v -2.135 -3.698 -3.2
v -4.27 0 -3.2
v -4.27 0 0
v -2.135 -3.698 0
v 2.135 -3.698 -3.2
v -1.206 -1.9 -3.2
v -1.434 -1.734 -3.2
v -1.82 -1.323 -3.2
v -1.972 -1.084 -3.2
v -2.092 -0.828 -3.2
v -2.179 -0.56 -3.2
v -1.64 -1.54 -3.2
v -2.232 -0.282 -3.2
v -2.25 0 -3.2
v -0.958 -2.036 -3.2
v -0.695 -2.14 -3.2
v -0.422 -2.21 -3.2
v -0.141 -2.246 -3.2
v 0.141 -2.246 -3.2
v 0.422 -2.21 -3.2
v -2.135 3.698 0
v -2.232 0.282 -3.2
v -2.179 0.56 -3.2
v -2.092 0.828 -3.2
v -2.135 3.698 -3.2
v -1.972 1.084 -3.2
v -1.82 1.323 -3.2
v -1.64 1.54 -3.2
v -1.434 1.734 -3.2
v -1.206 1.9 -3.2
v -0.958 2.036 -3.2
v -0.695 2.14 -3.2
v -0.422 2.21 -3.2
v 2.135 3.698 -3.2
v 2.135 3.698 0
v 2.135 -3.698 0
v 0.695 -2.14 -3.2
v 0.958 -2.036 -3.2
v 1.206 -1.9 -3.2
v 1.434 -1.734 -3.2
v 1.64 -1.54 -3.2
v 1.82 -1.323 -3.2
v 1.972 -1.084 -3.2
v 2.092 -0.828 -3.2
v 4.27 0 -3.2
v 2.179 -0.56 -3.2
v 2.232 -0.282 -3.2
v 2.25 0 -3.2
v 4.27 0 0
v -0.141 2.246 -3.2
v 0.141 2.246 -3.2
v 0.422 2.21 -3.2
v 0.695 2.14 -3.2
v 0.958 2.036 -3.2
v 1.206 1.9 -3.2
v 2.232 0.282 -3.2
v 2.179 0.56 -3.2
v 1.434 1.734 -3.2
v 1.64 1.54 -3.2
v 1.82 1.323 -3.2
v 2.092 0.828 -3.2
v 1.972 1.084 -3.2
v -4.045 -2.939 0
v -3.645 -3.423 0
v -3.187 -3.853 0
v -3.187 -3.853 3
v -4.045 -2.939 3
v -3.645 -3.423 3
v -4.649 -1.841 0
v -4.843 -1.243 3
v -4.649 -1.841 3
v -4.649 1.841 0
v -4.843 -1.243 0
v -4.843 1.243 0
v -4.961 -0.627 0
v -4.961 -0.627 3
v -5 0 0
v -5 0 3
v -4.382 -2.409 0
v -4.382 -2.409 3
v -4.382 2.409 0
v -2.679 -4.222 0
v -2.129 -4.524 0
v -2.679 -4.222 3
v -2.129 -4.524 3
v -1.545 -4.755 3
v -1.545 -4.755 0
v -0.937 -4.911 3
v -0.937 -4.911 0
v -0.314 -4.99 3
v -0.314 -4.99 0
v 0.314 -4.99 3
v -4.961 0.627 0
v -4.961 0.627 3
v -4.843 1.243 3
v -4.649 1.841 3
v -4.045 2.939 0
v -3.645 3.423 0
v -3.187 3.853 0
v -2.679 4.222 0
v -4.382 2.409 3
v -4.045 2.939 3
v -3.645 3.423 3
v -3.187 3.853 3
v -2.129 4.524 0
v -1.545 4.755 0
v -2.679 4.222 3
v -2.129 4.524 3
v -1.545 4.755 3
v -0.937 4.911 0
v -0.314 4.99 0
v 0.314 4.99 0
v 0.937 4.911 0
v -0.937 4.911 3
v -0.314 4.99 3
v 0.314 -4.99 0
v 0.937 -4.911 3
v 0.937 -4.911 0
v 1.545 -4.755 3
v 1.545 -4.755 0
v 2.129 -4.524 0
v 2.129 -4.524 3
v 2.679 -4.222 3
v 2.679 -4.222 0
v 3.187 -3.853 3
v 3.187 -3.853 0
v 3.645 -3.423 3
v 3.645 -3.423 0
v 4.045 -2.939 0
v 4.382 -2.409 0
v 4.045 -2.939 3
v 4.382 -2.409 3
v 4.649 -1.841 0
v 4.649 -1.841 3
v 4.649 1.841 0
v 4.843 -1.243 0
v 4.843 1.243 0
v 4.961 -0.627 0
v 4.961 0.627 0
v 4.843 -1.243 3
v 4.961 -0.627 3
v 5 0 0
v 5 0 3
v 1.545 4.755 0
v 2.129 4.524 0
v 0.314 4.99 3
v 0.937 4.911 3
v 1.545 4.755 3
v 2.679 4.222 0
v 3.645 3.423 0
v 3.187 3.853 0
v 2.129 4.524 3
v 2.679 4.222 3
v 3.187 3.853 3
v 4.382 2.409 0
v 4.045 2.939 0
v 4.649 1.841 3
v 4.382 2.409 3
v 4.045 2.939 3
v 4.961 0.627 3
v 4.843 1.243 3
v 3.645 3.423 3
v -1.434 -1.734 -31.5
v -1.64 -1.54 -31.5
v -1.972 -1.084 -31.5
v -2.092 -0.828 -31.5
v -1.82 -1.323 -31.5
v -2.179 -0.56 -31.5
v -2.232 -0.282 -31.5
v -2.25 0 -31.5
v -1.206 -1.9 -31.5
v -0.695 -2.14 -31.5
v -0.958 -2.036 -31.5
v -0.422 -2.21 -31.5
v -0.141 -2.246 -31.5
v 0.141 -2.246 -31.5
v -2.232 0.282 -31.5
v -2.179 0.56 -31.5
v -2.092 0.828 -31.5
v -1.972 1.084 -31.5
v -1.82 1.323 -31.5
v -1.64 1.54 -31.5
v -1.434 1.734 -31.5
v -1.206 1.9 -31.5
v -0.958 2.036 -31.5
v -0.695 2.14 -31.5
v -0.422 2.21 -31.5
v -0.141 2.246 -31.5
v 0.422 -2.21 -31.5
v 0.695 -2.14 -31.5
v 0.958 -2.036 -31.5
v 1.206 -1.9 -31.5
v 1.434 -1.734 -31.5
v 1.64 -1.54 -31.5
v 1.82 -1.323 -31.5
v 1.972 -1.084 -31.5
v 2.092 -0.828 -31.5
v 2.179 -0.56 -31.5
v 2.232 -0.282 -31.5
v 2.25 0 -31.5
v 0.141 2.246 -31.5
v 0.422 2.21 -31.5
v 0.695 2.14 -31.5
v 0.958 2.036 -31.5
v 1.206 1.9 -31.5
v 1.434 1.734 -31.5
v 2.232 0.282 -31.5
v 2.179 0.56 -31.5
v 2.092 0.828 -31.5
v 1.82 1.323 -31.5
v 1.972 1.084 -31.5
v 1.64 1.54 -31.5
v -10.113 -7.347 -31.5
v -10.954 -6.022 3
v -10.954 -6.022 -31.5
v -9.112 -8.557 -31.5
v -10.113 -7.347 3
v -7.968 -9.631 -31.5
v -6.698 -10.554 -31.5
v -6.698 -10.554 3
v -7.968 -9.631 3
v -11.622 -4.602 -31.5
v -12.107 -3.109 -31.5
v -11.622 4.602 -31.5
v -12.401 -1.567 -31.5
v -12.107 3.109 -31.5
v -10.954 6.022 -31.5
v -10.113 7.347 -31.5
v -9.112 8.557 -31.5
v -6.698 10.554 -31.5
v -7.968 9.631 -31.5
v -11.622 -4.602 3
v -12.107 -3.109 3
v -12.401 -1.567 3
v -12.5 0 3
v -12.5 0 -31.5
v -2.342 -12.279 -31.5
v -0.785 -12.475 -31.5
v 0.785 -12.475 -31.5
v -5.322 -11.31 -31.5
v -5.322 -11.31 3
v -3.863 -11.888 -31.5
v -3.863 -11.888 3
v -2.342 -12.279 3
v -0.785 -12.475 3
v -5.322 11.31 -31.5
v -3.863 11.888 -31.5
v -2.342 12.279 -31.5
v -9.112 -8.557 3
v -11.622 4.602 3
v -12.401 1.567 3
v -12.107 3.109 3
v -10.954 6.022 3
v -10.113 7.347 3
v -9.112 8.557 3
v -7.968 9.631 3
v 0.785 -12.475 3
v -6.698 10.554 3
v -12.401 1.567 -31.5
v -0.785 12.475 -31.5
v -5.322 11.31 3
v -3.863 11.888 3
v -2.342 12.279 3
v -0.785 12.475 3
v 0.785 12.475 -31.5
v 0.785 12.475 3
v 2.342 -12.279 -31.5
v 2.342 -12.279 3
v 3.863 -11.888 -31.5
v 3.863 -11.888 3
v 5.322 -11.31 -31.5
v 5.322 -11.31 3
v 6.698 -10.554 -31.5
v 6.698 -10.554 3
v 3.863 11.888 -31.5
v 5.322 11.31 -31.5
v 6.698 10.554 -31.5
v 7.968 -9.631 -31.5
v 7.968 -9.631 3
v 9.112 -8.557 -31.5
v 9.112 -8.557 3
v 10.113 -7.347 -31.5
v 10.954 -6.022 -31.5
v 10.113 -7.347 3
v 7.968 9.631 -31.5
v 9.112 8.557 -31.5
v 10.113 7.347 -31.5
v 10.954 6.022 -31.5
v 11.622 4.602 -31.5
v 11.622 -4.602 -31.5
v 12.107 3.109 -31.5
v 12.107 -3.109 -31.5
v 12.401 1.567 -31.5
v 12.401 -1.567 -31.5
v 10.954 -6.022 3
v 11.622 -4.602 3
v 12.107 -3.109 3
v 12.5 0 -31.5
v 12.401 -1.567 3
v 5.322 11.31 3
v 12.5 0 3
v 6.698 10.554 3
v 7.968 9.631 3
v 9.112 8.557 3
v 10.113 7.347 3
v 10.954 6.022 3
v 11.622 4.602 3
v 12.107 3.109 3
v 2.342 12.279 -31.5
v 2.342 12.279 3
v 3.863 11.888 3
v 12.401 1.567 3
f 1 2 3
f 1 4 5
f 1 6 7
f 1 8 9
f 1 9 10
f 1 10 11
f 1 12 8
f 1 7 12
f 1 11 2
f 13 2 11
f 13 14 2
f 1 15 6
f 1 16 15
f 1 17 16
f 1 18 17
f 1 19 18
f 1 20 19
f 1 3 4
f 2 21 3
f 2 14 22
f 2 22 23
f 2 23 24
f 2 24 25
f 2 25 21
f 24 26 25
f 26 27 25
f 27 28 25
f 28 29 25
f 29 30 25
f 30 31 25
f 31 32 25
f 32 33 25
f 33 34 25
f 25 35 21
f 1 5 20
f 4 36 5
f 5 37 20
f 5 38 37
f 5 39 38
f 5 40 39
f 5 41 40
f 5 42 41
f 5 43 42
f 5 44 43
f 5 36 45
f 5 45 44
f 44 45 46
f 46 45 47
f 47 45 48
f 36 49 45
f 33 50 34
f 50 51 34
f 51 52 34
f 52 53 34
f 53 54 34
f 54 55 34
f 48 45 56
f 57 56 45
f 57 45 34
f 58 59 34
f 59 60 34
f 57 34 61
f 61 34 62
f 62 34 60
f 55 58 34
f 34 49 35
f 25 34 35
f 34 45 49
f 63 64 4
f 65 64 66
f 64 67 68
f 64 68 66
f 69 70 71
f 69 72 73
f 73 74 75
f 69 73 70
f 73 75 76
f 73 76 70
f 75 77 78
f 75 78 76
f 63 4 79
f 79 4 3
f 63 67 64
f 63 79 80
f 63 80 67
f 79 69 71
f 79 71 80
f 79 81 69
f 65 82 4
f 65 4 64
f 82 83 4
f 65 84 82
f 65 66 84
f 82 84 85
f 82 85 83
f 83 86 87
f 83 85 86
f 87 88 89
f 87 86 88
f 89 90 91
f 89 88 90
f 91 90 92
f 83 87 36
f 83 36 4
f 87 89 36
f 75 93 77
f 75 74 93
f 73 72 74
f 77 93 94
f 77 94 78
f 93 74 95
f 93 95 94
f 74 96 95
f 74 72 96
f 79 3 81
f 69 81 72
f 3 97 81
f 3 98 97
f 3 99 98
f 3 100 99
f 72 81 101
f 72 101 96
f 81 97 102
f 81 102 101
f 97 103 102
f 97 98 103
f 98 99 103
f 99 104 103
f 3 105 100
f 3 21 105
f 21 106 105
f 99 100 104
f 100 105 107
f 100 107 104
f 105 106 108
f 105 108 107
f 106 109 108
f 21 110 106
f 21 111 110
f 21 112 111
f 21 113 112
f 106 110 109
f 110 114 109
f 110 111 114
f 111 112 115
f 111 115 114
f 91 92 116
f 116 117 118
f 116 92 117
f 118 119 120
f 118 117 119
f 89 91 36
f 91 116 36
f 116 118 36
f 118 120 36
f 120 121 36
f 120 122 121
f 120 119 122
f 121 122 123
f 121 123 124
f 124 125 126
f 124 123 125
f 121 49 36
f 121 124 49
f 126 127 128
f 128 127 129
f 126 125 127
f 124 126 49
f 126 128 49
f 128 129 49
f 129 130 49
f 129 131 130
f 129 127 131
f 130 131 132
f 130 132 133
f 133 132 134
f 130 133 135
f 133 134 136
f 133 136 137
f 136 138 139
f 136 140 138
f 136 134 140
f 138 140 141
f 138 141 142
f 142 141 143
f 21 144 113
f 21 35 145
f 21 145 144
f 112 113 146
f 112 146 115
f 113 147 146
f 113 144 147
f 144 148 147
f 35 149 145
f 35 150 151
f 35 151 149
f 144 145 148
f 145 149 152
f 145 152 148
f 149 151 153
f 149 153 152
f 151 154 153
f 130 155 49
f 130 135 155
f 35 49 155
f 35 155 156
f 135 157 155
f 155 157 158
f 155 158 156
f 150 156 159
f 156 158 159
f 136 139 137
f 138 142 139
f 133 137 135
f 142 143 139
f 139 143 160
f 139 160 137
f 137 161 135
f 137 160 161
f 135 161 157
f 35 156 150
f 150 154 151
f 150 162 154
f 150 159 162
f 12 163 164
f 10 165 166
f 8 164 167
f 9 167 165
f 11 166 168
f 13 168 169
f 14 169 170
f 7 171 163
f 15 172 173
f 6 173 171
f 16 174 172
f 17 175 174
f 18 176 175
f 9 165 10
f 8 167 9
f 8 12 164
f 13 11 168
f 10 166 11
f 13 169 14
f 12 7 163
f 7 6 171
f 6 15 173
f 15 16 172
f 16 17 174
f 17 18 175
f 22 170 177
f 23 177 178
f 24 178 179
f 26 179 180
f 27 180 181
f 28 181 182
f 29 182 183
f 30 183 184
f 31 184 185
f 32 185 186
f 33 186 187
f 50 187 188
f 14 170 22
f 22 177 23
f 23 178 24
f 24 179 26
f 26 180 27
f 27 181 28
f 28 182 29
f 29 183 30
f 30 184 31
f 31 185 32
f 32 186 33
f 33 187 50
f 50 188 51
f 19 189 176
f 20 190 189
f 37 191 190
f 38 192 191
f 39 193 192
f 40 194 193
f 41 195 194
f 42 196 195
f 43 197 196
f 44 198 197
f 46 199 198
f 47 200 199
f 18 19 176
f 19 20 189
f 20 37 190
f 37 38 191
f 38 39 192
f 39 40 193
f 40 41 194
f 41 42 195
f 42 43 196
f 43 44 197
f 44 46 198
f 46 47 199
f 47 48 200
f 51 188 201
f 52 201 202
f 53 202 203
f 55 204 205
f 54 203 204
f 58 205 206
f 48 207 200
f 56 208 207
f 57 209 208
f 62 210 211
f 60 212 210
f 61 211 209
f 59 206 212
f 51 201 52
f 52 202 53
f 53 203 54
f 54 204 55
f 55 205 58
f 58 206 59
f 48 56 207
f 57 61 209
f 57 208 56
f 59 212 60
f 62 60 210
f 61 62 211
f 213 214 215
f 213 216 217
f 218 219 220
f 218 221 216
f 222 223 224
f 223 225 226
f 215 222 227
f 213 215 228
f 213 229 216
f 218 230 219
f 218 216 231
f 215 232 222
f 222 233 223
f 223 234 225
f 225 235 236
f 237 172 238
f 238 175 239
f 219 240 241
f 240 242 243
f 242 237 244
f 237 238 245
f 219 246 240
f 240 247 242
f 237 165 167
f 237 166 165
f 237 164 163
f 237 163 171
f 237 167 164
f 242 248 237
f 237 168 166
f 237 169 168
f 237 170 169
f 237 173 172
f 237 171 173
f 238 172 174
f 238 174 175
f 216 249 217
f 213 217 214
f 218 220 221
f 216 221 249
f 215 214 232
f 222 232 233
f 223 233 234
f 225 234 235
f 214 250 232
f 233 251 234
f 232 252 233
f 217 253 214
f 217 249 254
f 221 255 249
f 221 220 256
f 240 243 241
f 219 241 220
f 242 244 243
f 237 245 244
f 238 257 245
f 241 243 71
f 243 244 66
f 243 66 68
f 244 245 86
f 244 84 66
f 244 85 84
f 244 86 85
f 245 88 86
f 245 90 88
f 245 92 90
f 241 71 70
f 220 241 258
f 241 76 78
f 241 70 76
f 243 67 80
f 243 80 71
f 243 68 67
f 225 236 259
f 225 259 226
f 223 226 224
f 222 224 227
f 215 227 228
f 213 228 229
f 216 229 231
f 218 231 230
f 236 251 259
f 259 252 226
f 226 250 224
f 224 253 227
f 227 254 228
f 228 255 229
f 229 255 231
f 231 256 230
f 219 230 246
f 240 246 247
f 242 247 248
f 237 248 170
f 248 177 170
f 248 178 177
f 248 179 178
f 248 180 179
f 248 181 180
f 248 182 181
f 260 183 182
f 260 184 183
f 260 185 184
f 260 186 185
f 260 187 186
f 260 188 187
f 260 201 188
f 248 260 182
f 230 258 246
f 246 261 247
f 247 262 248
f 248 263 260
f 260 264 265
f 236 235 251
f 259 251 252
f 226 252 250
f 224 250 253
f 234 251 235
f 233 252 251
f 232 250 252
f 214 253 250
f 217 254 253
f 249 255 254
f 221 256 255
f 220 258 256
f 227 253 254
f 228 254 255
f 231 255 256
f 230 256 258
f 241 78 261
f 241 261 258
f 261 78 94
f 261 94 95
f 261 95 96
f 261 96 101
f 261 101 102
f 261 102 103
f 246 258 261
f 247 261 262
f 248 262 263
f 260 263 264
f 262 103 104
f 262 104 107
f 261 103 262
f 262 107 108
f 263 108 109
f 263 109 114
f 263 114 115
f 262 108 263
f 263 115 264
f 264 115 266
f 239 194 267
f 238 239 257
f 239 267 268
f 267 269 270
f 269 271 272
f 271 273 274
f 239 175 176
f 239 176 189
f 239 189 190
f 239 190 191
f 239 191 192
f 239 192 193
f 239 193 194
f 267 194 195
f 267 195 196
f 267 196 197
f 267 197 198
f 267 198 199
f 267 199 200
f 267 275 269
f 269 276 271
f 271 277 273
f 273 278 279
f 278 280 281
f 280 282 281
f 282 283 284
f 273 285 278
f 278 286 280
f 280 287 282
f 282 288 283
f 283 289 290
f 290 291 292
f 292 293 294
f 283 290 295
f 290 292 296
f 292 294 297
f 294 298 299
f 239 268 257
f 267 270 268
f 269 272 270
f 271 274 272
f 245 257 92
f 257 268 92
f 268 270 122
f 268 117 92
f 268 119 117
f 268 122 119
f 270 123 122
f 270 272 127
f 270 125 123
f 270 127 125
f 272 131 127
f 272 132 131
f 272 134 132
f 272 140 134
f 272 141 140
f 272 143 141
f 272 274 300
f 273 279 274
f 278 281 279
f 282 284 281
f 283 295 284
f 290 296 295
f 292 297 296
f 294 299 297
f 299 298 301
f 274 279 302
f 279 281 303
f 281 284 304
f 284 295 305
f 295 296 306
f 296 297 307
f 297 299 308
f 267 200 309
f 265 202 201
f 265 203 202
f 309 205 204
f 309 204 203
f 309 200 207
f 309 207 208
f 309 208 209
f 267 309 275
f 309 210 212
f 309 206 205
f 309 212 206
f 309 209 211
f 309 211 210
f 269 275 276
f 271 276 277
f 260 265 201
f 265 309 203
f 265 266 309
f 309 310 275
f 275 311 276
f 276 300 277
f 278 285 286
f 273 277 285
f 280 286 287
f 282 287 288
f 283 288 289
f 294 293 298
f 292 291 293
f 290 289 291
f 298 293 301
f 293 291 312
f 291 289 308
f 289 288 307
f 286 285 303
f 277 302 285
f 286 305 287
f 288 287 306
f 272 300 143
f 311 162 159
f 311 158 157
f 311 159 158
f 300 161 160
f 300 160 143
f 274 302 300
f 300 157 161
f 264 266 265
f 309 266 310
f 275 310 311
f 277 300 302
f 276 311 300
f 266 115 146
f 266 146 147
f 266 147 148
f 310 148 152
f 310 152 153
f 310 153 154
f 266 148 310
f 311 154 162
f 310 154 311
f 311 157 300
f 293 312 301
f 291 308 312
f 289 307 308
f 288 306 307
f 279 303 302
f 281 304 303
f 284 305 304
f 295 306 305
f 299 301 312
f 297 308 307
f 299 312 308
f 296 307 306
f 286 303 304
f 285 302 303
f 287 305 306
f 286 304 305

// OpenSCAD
$fn = 50;


difference() {
	union() {
		translate(v = [0, 0, -31.5000000000]) {
			cylinder(h = 34.5000000000, r = 12.5000000000);
		}
	}
	union() {
		translate(v = [0, 0, 0]) {
			rotate(a = [0, 0, 0]) {
				difference() {
					union() {
						translate(v = [0, 0, -3.2000000000]) {
							linear_extrude(height = 3.2000000000) {
								polygon(points = [[4.2698000000, 0.0000000000], [2.1349000000, 3.6977552691], [-2.1349000000, 3.6977552691], [-4.2698000000, 0.0000000000], [-2.1349000000, -3.6977552691], [2.1349000000, -3.6977552691]]);
							}
						}
					}
					union();
				}
			}
		}
		#cylinder(h = 3, r = 5.0000000000);
		#translate(v = [0, 0, -100.0000000000]) {
			cylinder(h = 200, r = 2.2500000000);
		}
	}
}
